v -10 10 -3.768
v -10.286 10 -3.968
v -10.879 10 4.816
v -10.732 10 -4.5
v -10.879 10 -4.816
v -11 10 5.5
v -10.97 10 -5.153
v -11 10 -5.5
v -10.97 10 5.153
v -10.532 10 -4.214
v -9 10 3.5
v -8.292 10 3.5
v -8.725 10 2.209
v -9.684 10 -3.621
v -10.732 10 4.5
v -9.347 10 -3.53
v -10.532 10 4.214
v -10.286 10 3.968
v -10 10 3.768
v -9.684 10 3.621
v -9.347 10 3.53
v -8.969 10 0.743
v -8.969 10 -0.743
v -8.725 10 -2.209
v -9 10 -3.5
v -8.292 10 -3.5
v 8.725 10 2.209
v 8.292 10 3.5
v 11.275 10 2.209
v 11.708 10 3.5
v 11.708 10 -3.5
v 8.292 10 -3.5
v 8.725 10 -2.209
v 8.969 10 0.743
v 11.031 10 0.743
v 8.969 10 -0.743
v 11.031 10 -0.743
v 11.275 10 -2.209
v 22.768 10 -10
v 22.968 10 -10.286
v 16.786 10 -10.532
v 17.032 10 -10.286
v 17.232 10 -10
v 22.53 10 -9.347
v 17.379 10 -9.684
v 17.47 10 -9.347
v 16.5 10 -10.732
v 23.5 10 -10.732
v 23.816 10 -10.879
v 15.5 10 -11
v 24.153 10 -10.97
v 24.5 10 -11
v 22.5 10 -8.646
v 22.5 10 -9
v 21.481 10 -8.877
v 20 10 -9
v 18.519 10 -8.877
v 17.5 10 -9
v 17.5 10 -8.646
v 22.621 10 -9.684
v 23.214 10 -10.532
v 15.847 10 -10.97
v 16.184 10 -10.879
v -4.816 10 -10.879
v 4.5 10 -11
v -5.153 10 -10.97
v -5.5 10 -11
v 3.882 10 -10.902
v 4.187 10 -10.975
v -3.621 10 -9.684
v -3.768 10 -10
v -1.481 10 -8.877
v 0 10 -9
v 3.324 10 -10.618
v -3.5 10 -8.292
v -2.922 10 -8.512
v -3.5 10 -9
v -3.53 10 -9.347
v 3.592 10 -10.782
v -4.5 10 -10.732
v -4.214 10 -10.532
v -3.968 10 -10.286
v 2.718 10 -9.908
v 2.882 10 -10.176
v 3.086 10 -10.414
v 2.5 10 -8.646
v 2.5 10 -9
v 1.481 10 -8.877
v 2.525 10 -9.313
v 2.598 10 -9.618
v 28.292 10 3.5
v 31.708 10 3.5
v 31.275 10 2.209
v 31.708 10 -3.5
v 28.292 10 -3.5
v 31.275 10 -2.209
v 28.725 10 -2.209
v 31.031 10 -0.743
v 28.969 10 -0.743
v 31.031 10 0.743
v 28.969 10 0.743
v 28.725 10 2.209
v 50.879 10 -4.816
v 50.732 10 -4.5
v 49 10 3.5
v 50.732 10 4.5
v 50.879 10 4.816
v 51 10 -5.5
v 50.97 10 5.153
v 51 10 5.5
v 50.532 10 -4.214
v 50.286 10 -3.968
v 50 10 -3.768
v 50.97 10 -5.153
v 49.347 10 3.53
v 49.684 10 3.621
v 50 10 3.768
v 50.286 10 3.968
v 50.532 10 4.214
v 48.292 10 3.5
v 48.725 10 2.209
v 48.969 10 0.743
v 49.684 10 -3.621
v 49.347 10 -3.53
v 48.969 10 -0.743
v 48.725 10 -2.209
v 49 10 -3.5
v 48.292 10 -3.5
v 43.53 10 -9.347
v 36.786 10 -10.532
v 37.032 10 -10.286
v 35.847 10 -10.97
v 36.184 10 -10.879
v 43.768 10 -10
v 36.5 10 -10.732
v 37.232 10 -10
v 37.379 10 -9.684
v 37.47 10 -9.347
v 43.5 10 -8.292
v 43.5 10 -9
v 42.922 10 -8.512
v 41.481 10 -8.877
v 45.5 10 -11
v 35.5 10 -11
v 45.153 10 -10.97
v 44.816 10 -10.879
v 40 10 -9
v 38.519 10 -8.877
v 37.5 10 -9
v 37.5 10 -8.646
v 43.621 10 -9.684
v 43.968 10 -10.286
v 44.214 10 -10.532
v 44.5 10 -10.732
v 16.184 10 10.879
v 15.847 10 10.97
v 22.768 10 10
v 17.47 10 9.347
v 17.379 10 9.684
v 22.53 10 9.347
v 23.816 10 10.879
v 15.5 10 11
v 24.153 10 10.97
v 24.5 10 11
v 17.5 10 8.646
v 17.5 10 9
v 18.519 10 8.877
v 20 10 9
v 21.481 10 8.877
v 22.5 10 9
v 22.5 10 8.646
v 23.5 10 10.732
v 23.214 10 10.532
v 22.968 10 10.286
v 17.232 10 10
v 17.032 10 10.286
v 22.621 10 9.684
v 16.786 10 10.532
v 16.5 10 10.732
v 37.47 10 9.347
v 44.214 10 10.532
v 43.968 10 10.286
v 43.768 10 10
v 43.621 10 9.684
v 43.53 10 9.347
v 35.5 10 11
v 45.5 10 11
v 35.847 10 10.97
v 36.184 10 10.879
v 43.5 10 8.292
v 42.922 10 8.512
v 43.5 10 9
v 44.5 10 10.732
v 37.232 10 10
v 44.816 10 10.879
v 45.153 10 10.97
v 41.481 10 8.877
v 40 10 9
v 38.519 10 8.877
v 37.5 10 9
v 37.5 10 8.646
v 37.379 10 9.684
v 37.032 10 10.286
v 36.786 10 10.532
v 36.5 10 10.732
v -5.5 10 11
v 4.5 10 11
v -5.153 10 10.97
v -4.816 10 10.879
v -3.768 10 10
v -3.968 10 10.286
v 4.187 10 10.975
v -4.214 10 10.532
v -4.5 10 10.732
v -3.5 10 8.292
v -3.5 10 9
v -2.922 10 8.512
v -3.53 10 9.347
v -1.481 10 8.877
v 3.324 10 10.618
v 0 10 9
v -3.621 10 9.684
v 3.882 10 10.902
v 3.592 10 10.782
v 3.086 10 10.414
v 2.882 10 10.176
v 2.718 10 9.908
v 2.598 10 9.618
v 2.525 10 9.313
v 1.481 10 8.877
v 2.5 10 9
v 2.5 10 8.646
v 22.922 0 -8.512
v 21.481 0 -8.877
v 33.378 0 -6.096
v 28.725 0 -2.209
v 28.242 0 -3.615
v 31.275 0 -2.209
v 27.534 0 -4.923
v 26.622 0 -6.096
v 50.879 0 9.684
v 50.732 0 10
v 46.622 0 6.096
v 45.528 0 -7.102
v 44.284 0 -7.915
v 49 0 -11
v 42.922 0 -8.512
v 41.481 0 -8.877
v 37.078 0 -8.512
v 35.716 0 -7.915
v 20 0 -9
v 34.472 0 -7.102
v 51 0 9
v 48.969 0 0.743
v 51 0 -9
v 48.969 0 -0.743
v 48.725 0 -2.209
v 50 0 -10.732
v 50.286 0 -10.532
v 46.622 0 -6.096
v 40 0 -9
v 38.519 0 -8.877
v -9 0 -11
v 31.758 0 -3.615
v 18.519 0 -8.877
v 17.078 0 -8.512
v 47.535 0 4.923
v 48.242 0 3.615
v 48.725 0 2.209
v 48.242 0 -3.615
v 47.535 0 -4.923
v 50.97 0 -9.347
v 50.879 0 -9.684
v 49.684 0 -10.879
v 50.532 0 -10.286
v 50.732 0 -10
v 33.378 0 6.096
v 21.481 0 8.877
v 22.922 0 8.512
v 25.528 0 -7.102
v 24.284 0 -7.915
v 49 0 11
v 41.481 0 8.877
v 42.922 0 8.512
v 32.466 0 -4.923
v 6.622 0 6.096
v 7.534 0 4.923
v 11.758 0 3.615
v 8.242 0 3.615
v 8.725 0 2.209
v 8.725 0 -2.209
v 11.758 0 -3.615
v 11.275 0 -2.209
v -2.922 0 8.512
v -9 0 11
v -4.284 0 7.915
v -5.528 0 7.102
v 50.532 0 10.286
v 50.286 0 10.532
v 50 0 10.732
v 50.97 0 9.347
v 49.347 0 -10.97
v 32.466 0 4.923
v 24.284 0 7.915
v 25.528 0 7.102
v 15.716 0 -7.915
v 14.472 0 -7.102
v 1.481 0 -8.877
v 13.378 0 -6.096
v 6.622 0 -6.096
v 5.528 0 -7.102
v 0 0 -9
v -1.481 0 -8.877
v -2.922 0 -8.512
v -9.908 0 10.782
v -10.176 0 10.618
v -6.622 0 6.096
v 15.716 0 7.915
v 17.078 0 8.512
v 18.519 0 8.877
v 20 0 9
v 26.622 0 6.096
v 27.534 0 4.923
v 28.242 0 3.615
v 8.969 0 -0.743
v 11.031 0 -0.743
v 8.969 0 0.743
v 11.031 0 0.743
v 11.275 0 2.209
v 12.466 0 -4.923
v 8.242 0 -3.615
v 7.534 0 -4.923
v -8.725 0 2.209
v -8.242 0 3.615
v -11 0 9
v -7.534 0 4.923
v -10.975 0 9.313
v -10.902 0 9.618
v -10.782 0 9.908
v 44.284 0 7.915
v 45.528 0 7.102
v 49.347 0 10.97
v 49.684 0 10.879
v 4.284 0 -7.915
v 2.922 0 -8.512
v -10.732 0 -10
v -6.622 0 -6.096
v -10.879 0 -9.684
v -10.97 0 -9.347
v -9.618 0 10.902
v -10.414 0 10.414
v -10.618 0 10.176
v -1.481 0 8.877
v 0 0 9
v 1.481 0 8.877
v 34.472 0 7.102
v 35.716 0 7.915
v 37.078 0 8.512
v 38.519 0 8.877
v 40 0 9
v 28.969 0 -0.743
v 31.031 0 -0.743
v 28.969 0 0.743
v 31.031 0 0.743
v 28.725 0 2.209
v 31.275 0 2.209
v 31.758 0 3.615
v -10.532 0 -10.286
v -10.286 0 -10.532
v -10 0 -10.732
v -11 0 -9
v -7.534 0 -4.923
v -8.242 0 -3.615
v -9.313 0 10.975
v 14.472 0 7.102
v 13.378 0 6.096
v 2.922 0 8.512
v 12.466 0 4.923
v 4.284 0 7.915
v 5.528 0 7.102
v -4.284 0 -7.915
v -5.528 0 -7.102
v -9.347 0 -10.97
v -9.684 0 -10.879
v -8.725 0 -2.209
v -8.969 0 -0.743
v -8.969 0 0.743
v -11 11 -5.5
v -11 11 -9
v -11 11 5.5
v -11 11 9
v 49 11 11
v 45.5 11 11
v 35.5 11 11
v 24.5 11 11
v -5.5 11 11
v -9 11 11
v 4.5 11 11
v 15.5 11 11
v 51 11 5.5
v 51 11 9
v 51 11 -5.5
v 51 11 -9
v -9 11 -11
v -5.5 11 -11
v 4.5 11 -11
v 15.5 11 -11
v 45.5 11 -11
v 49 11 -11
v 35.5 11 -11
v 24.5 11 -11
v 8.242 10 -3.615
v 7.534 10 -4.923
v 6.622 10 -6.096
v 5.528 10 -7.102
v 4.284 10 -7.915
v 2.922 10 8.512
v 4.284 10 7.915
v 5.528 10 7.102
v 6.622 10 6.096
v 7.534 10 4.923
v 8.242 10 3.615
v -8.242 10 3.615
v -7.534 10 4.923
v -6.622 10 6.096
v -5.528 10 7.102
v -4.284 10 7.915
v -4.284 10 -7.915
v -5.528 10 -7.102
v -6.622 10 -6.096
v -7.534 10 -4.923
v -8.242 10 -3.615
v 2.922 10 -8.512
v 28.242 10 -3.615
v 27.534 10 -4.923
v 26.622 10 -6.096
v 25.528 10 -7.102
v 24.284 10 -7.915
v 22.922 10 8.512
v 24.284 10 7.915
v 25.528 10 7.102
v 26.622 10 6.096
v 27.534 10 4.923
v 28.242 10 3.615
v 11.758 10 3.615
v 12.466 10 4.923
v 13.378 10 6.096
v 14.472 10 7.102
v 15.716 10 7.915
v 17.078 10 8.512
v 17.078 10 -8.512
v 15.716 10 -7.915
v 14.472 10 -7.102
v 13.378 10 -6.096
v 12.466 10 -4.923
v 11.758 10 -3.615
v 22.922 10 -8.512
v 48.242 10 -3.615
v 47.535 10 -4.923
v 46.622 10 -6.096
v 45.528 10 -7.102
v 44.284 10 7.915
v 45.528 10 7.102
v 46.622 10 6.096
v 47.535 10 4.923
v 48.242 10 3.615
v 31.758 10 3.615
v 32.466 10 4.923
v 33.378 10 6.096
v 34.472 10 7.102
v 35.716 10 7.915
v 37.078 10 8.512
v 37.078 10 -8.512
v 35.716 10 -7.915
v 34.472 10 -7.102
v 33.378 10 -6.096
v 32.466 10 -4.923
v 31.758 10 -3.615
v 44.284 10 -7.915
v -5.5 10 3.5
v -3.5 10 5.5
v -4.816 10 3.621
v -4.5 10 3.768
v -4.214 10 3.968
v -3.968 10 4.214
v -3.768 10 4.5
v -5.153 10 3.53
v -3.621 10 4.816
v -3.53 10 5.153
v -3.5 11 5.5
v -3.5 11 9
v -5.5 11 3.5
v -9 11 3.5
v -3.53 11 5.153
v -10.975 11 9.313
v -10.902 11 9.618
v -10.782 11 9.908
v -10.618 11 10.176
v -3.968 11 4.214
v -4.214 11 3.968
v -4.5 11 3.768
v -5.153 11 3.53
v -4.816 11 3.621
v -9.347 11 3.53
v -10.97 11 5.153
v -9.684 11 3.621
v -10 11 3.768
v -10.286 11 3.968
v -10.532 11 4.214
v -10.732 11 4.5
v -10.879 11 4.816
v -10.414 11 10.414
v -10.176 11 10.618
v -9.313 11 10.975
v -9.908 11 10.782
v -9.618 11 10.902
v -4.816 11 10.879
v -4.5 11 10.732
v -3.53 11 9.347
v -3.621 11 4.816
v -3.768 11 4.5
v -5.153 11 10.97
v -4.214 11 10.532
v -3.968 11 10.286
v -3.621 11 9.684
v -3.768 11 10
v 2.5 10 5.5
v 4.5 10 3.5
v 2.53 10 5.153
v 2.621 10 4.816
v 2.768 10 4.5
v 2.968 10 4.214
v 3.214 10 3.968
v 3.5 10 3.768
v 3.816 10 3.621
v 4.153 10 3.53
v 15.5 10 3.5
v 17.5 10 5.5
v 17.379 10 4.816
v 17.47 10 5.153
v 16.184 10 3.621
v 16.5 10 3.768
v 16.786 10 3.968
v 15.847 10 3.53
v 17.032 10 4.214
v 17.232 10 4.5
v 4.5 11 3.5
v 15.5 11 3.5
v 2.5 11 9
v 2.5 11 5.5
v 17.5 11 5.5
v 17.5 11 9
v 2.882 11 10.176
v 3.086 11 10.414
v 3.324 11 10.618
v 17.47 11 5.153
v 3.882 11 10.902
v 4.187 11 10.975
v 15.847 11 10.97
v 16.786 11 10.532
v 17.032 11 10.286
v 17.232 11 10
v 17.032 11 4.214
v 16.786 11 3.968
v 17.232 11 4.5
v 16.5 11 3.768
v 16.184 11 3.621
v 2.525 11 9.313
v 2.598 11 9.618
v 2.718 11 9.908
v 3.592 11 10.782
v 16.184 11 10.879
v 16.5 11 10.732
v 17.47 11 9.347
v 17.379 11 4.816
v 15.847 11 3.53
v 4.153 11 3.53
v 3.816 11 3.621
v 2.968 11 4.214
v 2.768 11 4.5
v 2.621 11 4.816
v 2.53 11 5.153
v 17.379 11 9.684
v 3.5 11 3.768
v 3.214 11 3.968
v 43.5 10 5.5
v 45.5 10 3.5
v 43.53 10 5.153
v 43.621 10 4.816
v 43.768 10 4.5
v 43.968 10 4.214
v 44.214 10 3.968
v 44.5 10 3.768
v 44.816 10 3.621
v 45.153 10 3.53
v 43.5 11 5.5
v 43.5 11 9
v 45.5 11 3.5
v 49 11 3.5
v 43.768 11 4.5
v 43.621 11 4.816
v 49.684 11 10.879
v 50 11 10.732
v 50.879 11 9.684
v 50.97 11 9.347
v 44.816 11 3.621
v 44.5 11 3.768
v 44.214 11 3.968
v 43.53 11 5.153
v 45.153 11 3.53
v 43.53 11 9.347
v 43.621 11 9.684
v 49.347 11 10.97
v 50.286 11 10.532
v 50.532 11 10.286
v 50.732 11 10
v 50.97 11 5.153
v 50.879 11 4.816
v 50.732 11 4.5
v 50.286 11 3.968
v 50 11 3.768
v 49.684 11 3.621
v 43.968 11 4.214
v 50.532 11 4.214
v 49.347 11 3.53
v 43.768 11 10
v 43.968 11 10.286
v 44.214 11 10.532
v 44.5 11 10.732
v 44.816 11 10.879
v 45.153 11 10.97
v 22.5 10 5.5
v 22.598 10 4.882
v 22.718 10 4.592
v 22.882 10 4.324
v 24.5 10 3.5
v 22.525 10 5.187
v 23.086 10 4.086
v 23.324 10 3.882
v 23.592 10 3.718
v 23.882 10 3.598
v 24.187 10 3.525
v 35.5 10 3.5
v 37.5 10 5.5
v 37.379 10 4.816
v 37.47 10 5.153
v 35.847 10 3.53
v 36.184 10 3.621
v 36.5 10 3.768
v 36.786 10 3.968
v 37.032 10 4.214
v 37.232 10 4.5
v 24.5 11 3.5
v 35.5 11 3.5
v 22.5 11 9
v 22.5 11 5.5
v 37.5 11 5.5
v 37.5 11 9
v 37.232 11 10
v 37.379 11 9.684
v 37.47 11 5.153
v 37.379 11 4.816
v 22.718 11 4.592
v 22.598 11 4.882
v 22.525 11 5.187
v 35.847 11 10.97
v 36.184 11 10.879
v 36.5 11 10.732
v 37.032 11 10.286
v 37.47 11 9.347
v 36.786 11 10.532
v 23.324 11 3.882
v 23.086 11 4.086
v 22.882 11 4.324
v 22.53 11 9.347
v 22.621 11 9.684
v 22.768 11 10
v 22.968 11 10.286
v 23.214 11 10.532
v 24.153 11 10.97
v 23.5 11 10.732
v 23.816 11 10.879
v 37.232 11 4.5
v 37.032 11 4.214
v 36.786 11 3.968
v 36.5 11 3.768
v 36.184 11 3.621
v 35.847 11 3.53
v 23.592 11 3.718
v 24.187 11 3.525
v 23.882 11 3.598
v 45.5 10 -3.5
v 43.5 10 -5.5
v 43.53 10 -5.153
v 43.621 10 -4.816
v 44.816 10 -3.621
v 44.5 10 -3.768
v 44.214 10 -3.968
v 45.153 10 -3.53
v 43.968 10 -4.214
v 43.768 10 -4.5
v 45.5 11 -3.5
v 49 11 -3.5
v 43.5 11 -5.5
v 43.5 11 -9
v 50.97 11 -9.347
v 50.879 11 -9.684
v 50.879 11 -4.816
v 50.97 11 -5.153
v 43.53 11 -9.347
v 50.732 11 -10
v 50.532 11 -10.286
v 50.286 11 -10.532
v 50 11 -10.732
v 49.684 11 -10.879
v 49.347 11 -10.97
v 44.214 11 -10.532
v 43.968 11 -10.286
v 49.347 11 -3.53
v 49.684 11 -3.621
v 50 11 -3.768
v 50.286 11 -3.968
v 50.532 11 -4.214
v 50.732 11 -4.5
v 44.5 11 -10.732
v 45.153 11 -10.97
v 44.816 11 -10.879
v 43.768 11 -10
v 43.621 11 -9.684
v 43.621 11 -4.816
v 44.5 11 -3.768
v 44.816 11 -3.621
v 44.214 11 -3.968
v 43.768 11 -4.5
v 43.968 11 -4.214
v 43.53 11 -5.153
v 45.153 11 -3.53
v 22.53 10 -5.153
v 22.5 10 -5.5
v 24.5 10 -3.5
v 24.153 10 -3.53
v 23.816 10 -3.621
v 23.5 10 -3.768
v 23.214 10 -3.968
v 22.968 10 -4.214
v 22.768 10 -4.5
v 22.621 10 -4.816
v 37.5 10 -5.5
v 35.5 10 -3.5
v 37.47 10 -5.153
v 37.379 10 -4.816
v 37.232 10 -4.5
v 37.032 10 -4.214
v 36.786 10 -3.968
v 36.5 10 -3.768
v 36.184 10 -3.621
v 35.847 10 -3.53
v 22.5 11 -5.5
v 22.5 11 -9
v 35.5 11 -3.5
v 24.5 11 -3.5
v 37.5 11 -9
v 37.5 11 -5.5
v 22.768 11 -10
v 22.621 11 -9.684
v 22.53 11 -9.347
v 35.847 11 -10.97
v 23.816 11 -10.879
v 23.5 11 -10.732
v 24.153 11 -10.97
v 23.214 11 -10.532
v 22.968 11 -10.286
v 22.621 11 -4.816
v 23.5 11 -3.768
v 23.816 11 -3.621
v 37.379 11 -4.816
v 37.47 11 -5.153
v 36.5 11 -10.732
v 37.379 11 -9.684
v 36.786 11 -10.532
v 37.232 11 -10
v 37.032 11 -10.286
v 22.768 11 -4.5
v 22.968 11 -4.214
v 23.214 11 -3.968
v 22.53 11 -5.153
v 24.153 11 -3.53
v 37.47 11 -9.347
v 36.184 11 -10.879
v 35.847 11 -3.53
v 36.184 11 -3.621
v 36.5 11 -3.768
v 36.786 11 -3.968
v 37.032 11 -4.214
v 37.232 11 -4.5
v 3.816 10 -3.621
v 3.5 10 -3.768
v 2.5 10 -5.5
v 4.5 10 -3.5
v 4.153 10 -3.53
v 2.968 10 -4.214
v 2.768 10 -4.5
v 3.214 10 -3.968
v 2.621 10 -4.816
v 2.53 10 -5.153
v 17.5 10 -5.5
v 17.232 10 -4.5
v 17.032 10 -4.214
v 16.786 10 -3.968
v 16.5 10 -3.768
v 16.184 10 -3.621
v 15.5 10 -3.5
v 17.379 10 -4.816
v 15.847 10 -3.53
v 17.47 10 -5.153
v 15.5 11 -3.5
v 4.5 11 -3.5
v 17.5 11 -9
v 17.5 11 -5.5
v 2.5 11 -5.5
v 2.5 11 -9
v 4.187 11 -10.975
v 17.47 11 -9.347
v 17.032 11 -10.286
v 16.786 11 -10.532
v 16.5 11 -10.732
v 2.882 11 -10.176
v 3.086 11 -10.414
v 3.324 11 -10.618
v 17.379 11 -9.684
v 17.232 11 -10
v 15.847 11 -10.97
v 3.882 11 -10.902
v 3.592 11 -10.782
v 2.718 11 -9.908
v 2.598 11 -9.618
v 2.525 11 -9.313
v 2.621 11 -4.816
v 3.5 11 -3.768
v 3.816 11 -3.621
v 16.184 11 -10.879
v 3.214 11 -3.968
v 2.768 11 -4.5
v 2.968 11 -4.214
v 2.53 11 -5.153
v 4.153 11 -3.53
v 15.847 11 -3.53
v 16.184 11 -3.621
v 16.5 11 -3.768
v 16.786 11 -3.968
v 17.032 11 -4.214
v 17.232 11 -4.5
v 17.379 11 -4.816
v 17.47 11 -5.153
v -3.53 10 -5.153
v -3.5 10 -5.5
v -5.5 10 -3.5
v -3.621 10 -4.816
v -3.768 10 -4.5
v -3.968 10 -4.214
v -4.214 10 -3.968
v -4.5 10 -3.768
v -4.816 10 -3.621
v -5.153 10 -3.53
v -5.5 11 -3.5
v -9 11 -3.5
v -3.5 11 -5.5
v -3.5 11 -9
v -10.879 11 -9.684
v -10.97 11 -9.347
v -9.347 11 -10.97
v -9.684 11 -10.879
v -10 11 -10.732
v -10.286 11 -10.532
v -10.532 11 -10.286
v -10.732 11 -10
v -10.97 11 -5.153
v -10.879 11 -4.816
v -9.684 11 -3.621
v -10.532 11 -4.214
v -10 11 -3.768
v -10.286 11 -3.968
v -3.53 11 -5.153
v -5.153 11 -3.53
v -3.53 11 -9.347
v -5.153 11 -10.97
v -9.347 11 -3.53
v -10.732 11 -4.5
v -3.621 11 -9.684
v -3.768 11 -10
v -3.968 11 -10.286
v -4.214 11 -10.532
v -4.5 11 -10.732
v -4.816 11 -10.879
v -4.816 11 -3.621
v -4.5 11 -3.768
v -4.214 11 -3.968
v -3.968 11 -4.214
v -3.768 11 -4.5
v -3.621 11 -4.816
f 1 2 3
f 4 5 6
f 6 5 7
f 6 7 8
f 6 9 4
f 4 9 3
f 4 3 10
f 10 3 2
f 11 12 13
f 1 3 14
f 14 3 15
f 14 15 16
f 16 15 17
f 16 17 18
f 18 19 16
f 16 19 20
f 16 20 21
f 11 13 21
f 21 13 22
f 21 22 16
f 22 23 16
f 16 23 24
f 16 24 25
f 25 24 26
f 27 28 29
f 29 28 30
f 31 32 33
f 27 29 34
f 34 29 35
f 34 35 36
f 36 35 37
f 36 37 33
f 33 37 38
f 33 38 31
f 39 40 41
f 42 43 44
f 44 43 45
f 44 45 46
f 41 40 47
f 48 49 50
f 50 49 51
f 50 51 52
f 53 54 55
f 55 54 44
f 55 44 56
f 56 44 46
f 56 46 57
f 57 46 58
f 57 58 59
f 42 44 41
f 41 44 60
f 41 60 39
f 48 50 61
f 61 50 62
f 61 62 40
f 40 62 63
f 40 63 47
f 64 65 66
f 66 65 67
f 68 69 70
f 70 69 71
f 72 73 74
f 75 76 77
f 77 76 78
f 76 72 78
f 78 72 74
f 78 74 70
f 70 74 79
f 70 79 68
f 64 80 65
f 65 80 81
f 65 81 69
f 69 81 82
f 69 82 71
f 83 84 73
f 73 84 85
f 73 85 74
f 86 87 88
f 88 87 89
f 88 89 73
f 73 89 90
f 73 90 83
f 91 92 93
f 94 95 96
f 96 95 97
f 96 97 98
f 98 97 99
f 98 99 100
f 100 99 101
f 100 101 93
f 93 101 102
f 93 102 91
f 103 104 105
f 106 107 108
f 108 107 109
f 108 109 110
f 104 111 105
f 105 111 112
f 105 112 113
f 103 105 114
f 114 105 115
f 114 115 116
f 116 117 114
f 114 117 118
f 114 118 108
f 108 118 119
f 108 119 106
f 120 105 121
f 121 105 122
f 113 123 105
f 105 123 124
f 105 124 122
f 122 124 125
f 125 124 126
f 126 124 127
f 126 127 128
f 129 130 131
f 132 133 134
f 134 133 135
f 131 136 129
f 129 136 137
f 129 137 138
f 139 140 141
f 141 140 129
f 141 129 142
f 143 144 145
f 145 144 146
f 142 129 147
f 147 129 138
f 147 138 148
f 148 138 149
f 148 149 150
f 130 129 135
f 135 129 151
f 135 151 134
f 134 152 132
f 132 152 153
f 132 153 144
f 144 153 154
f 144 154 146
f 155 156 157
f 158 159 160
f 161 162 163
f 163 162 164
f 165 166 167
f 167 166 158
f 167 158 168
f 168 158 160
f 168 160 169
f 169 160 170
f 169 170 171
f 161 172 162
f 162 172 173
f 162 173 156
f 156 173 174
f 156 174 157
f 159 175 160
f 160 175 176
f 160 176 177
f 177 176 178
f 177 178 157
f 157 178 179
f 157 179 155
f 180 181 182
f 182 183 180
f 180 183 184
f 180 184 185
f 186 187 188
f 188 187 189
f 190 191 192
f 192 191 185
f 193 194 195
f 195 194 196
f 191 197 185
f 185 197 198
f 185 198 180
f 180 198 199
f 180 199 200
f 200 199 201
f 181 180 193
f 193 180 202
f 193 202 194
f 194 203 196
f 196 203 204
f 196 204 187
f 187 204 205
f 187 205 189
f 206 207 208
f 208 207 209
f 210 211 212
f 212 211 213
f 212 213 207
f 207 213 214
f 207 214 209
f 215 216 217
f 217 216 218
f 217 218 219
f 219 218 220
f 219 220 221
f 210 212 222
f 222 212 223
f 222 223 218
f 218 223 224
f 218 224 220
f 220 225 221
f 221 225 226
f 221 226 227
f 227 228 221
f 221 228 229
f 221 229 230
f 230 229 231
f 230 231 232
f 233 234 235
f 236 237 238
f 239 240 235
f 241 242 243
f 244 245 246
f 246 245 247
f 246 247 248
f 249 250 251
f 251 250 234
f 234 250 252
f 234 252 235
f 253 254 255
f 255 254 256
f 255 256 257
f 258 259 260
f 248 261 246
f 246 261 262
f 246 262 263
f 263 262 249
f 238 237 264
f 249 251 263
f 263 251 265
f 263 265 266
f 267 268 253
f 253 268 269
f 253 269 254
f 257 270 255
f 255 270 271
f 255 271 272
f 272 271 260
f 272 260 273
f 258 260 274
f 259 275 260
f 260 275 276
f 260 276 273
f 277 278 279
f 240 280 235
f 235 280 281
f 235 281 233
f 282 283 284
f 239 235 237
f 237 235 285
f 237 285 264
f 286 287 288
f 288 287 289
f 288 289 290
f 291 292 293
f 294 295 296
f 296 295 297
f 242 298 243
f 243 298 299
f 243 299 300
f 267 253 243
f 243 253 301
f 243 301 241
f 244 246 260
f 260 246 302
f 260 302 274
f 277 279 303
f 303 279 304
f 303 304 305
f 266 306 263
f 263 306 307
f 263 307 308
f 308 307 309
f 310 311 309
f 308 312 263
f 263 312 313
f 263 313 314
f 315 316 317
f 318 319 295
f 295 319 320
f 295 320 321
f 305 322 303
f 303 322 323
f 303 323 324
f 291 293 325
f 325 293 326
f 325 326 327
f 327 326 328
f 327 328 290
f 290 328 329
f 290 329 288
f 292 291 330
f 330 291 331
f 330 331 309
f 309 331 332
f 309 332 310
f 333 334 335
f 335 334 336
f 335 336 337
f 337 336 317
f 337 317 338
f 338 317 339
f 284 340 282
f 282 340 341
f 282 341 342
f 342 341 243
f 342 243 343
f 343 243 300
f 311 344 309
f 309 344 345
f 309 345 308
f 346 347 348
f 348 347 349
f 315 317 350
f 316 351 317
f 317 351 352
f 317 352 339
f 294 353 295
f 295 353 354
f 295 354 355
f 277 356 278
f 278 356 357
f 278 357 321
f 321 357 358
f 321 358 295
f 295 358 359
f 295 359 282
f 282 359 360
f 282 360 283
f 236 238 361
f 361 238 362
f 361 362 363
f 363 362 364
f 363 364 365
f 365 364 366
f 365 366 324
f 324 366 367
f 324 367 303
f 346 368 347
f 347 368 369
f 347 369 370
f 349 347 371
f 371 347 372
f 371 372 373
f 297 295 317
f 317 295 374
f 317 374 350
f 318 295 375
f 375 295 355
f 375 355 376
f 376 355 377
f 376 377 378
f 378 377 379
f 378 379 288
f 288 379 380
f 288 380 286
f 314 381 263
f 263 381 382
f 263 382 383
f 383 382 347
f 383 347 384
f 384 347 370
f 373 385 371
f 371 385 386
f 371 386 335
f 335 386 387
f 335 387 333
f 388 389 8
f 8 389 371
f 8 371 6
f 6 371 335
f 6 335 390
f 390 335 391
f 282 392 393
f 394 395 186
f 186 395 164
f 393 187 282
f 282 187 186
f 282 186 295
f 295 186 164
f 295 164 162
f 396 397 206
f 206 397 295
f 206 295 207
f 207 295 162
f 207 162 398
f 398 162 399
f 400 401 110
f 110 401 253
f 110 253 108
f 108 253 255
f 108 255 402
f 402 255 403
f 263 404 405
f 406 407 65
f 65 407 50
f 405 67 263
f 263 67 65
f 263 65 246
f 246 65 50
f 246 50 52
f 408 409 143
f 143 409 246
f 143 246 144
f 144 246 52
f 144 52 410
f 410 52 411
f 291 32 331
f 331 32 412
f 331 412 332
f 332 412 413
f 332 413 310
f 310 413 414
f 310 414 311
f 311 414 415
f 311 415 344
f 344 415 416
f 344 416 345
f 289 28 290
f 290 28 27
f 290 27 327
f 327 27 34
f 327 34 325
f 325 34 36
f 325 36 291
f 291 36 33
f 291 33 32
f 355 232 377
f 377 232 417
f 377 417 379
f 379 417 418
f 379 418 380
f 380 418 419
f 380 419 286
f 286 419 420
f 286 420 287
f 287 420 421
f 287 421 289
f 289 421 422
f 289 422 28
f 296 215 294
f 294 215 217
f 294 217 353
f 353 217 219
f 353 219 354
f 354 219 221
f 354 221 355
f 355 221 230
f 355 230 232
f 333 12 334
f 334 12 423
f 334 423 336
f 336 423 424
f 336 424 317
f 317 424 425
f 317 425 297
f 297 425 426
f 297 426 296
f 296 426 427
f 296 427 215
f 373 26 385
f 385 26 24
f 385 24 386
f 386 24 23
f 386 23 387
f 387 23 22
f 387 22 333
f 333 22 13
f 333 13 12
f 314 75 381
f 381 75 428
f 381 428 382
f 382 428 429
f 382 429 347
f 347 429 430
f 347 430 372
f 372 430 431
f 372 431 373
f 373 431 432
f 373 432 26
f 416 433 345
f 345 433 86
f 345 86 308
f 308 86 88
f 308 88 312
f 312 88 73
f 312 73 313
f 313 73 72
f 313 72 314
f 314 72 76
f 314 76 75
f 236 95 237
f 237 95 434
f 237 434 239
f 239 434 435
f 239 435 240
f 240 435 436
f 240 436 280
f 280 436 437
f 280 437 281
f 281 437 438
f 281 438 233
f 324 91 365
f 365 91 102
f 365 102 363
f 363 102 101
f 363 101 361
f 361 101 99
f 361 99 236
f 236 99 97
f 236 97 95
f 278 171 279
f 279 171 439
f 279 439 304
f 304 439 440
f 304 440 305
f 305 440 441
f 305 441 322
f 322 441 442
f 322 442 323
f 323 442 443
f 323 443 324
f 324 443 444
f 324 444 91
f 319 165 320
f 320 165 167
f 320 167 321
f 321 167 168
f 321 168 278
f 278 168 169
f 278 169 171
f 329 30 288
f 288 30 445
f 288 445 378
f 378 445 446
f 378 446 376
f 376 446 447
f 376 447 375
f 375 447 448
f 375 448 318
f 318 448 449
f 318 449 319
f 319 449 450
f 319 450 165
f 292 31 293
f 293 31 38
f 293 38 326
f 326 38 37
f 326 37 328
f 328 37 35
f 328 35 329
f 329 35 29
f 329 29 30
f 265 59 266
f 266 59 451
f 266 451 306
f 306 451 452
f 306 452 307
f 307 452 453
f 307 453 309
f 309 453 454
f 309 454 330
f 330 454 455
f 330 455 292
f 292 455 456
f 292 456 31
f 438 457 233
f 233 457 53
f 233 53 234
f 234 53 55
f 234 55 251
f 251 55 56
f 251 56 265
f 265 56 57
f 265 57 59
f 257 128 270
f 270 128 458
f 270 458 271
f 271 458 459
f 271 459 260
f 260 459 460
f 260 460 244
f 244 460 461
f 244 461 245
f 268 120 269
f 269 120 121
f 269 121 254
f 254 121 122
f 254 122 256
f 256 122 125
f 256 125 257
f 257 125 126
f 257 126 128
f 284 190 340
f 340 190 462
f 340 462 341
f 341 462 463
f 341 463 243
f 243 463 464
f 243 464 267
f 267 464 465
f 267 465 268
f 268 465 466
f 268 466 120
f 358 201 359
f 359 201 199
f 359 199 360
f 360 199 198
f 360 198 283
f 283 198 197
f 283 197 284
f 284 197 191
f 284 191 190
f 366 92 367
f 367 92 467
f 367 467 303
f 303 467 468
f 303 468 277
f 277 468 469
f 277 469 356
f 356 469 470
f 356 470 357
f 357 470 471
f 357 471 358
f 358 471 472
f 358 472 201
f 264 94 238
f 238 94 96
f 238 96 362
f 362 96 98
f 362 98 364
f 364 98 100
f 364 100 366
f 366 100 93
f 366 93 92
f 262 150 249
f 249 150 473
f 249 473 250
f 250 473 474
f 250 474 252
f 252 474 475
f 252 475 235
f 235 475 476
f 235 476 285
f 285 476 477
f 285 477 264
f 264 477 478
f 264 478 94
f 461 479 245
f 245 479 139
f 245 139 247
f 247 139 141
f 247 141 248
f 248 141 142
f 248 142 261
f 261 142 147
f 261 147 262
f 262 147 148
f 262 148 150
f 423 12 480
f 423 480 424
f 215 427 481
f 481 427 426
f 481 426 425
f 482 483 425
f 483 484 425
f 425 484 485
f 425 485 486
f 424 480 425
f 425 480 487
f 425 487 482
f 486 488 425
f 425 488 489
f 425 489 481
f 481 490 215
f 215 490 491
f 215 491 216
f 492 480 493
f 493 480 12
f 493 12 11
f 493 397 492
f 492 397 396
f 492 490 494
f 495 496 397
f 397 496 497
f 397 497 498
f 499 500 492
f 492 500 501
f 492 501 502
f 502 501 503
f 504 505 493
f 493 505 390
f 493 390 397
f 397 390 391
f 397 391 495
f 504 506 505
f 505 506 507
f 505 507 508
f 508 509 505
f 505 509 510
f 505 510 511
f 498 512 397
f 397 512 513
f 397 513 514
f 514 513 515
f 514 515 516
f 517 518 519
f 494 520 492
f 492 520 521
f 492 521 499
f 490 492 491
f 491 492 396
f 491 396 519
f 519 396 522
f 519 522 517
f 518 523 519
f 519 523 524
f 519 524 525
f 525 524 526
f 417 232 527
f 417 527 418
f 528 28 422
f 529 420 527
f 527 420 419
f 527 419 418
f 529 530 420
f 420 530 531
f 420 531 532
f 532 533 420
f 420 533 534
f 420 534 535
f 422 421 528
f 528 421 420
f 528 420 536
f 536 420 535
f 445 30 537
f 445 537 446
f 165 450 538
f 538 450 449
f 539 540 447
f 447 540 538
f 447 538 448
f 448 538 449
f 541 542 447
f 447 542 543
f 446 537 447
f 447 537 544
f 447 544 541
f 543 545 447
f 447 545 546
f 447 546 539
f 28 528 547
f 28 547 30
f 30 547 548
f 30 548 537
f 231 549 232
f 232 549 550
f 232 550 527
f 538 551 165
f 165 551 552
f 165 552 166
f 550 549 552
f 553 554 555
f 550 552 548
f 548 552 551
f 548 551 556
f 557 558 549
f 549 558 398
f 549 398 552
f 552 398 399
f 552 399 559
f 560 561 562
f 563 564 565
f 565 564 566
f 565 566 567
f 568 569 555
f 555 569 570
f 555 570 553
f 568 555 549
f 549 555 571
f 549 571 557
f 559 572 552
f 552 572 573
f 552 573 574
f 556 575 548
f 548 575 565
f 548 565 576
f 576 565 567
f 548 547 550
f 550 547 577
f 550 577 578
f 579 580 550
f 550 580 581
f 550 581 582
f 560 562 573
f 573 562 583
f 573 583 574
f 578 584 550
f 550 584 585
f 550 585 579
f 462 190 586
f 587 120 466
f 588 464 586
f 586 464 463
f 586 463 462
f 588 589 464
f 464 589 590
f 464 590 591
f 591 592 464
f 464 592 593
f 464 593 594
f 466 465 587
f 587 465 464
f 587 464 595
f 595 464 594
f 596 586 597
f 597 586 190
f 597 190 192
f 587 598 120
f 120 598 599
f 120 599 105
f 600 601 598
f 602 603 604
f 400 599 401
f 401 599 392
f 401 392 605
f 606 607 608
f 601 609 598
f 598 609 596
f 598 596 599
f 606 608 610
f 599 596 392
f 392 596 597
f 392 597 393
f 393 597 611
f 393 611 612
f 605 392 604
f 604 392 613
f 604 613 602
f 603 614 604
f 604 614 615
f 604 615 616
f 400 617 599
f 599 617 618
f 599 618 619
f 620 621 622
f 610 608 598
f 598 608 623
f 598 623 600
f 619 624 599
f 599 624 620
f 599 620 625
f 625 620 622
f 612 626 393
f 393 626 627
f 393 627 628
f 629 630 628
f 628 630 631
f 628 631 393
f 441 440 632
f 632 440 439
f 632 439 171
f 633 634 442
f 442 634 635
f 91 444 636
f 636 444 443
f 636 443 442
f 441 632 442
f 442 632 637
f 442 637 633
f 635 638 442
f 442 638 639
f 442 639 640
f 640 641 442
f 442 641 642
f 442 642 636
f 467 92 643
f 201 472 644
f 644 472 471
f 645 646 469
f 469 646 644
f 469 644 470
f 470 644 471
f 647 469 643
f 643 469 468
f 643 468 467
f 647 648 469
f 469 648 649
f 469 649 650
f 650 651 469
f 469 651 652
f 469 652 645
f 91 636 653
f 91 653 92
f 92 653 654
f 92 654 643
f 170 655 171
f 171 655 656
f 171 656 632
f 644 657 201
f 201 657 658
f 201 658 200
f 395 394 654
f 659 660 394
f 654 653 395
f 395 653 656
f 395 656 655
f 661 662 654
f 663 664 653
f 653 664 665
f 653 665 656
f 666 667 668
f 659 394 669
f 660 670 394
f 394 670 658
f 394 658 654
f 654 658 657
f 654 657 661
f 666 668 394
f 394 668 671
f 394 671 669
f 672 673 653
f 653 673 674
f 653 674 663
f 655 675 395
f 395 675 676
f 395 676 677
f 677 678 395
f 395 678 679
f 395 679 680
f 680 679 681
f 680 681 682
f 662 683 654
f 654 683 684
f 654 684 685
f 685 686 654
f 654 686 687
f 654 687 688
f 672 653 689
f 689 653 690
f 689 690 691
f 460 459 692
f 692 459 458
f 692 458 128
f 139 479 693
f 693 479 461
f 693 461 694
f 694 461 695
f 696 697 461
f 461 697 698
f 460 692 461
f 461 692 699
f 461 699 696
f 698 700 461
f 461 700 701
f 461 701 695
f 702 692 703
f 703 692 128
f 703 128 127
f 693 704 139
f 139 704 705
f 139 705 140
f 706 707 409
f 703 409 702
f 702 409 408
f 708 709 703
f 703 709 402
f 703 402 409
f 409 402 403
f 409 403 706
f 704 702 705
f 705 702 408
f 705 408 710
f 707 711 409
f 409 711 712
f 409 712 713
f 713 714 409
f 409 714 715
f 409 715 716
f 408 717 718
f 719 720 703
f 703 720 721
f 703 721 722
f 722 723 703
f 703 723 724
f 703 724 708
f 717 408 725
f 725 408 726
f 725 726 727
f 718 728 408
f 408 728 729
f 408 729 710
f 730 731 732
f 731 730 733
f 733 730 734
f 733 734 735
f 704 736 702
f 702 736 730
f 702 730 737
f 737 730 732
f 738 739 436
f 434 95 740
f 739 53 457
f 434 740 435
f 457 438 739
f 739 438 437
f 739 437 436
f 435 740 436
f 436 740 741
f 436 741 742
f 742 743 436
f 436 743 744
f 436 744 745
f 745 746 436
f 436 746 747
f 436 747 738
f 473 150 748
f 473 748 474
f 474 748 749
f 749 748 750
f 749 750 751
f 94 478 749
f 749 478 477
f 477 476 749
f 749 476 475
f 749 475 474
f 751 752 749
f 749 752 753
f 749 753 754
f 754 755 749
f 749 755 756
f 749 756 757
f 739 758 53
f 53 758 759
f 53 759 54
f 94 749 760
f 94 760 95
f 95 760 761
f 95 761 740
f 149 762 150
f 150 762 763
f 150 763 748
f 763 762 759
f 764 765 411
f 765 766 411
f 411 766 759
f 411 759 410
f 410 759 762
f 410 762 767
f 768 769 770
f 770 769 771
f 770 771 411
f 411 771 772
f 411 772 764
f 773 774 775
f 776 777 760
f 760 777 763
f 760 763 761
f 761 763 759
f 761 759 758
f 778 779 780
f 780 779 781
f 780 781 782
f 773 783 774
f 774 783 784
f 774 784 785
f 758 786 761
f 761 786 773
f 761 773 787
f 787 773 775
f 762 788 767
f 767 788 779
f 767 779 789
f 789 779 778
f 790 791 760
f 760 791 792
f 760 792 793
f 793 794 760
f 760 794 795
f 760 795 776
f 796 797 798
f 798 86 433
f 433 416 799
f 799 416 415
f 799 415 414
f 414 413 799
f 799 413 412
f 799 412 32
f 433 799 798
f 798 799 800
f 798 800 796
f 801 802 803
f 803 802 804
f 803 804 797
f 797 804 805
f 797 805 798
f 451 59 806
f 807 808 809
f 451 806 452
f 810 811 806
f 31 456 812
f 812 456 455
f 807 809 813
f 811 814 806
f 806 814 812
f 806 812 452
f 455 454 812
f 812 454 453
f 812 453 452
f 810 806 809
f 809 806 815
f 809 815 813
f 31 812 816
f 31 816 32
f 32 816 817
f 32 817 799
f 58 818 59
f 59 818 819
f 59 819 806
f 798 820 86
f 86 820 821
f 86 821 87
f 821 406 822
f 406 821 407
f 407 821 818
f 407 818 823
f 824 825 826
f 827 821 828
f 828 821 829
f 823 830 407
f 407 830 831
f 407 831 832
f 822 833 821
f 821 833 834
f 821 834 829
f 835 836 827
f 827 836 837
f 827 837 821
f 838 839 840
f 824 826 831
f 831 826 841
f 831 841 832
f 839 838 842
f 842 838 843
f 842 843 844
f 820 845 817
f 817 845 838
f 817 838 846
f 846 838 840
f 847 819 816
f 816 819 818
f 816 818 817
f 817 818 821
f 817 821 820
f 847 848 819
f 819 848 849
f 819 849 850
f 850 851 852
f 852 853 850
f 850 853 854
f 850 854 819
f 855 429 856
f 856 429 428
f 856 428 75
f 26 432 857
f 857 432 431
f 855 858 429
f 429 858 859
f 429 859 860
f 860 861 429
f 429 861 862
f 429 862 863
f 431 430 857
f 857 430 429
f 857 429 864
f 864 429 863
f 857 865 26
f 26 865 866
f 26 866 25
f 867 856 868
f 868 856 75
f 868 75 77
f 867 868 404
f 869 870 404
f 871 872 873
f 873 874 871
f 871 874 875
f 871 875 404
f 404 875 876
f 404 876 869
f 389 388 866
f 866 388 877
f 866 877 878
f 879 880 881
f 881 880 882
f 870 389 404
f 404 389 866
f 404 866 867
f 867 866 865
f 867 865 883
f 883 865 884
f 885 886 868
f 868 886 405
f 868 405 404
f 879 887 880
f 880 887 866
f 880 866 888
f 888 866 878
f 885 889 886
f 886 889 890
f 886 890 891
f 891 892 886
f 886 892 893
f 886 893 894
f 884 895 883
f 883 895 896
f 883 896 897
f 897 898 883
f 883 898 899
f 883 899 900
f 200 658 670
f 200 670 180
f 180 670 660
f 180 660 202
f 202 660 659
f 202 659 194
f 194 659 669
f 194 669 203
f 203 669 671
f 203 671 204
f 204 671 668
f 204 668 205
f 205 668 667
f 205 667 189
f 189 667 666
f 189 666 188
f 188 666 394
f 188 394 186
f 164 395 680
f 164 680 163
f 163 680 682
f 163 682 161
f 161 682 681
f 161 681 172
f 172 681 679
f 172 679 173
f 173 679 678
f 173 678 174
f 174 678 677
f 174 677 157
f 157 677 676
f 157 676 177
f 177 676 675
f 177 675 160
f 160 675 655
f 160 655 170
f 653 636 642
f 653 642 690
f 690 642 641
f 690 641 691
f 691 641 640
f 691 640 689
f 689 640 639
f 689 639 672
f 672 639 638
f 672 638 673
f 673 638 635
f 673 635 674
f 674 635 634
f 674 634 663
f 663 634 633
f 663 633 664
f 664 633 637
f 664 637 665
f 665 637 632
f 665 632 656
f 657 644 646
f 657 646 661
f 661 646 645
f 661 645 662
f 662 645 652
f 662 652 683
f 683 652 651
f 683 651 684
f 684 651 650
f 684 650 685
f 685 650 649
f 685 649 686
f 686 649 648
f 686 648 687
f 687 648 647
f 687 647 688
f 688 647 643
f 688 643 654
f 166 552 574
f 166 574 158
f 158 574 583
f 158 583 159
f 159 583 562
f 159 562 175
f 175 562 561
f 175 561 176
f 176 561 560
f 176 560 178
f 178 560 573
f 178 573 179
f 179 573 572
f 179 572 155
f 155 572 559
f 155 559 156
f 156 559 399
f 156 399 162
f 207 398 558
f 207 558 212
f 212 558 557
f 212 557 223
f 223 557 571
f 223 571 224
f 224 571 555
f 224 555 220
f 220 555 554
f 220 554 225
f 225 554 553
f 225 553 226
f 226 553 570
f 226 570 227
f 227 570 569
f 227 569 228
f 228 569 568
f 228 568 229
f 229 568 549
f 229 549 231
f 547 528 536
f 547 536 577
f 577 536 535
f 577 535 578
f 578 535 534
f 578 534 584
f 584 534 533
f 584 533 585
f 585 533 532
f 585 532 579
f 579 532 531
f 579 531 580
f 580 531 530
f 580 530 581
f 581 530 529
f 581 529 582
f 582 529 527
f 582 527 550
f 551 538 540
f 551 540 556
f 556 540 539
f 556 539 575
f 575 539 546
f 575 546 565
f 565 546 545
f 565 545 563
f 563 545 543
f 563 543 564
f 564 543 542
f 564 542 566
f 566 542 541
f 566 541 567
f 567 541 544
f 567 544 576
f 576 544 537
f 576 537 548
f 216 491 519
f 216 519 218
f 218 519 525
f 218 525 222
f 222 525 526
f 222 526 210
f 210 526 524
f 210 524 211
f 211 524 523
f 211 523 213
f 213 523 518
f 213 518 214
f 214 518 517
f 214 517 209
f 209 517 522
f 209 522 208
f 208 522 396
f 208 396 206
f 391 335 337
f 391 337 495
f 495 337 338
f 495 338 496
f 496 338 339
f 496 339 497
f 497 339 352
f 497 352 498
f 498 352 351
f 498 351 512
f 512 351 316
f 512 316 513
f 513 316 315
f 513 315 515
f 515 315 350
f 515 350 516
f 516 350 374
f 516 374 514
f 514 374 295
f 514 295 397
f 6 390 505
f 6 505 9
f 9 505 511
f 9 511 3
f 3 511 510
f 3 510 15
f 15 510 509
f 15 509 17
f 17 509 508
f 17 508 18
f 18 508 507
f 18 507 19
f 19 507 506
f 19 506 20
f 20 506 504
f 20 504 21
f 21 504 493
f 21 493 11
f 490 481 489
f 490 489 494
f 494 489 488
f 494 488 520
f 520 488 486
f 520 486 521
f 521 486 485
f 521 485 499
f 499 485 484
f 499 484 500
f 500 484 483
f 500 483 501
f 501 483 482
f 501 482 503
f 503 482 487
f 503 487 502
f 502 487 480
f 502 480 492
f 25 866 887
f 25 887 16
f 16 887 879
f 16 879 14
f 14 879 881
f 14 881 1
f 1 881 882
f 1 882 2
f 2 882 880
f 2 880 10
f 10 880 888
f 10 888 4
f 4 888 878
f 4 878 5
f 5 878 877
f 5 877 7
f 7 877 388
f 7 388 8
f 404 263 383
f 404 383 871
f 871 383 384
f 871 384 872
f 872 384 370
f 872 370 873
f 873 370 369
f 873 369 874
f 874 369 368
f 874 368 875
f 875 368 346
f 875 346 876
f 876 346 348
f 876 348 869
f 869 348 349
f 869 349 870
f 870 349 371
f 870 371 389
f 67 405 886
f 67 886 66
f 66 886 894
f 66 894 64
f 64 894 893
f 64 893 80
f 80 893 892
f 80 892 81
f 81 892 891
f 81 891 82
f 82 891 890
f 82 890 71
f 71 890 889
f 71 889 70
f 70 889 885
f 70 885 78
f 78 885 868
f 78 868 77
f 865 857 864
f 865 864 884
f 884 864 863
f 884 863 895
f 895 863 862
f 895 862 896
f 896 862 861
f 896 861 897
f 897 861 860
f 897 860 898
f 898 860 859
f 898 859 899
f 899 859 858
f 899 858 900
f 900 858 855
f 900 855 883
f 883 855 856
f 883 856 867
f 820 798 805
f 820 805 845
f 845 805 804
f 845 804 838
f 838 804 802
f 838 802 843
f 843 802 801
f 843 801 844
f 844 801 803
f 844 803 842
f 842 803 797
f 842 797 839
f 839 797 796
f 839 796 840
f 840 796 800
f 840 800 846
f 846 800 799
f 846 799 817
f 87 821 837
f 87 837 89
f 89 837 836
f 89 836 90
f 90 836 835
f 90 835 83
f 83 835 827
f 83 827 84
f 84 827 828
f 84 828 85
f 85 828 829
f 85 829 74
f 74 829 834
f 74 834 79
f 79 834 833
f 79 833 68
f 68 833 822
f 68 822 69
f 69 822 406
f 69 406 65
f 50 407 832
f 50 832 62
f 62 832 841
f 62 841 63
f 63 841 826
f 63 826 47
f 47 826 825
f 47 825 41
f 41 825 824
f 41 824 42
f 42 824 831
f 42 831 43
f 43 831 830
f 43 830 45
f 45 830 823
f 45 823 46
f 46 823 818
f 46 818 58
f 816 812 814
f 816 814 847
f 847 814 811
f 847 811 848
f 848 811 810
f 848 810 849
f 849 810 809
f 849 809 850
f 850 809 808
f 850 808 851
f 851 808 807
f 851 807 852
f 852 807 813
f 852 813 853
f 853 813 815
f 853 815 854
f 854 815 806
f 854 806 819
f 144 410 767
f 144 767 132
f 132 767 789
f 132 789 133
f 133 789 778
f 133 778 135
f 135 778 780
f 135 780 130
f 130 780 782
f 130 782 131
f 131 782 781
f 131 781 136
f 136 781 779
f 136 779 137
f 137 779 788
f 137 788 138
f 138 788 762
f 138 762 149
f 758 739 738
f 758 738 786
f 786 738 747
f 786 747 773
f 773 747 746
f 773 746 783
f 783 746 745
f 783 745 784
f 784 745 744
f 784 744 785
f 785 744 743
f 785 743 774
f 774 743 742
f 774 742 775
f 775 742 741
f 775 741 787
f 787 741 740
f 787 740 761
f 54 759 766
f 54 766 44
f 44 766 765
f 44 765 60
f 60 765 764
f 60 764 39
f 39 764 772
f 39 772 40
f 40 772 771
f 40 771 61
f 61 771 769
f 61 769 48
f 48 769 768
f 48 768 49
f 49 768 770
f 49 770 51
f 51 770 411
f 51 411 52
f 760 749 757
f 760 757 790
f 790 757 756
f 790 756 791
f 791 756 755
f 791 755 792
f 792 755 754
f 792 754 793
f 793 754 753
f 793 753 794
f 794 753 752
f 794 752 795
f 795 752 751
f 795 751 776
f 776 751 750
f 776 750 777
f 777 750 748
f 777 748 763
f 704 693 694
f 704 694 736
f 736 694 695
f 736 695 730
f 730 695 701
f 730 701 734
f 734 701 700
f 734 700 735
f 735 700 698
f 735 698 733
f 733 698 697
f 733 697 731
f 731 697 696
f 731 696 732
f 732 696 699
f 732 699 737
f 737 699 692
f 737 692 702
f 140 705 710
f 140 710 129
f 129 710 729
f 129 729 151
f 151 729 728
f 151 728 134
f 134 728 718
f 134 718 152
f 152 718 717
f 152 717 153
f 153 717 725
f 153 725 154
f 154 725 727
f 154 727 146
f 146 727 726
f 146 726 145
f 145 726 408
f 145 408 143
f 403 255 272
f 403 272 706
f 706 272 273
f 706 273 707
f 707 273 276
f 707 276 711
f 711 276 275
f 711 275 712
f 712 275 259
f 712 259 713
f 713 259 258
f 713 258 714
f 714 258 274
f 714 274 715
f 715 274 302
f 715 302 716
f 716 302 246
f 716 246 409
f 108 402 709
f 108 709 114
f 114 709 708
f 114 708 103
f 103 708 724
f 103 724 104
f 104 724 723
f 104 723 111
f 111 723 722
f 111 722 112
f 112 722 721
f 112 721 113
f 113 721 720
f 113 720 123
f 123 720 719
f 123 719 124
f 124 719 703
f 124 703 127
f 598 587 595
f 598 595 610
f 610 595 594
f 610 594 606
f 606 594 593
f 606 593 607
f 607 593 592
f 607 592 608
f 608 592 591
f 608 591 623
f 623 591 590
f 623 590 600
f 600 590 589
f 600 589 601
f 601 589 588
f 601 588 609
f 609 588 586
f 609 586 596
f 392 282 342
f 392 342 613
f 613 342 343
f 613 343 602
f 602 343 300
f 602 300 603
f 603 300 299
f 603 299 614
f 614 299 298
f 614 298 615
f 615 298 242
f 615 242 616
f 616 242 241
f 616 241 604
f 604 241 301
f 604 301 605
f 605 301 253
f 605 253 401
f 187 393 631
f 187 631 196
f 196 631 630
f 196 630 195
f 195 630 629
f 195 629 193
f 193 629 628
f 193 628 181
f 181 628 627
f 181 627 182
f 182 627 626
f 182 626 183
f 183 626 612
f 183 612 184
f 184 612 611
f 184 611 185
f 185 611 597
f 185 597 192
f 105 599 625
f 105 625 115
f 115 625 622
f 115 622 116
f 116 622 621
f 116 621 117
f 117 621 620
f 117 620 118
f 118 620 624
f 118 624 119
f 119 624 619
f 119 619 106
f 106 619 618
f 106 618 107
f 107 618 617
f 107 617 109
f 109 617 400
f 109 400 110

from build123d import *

# Parameters (mm, degrees)
SKETCH1_W           = 62
SKETCH1_H           = 22
SKETCH1_R           = 9
BOSS_EXTRUDE3_DEPTH = 10
BOSS_EXTRUDE4_START = 10
SKETCH3_W           = 7.5
SKETCH3_H           = 7.5
SKETCH3_W_2         = 15
BOSS_EXTRUDE4_DEPTH = 1
FILLET3_R           = 2


with BuildPart() as part:
    # Sketch1 → Boss-Extrude3 (new body)
    with BuildSketch(Plane(origin=(0, 0, 0), x_dir=(1, 0, 0), z_dir=(0, 1, 0))):
        with Locations((20, 0)):
            Rectangle(SKETCH1_W, SKETCH1_H)
        with Locations(Location((0, 0, 0), (0, 0, 270))):
            Circle(SKETCH1_R, mode=Mode.SUBTRACT)
        with Locations(Location((20, 0, 0), (0, 0, 270))):
            Circle(SKETCH1_R, mode=Mode.SUBTRACT)
        with Locations(Location((40, 0, 0), (0, 0, 270))):
            Circle(SKETCH1_R, mode=Mode.SUBTRACT)
    extrude(amount=BOSS_EXTRUDE3_DEPTH)

    # Sketch3 → Boss-Extrude4 (add)
    with BuildSketch(Plane(origin=(0, 0, 0), x_dir=(-1, 0, 0), z_dir=(0, 1, 0)).offset(BOSS_EXTRUDE4_START)):
        with Locations((7.25, 7.25)):
            Rectangle(SKETCH3_W, SKETCH3_H)
        with Locations((-10, 7.25)):
            Rectangle(SKETCH3_W_2, SKETCH3_H)
        with Locations((-30, 7.25)):
            Rectangle(SKETCH3_W_2, SKETCH3_H)
        with Locations((-47.25, -7.25)):
            Rectangle(SKETCH3_W, SKETCH3_H)
        with Locations((-47.25, 7.25)):
            Rectangle(SKETCH3_W, SKETCH3_H)
        with Locations((-30, -7.25)):
            Rectangle(SKETCH3_W_2, SKETCH3_H)
        with Locations((-10, -7.25)):
            Rectangle(SKETCH3_W_2, SKETCH3_H)
        with Locations((7.25, -7.25)):
            Rectangle(SKETCH3_W, SKETCH3_H)
    extrude(amount=BOSS_EXTRUDE4_DEPTH)

    # Fillet3
    fillet3_edges = [part.edges().sort_by_distance(p)[0] for p in [
        (37.5, 10.5, -11),
        (22.5, 10.5, -11),
        (22.5, 10.5, -3.5),
        (37.5, 10.5, -3.5),
        (2.5, 10.5, -3.5),
        (17.5, 10.5, -3.5),
        (17.5, 10.5, -11),
        (2.5, 10.5, -11),
        (-11, 10.5, -3.5),
        (-3.5, 10.5, -3.5),
        (-3.5, 10.5, -11),
        (-3.5, 10.5, 11),
        (-3.5, 10.5, 3.5),
        (-11, 10.5, 3.5),
        (17.5, 10.5, 3.5),
        (2.5, 10.5, 3.5),
        (2.5, 10.5, 11),
        (17.5, 10.5, 11),
        (43.5, 10.5, 3.5),
        (43.5, 10.5, 11),
        (51, 10.5, 3.5),
        (37.5, 10.5, 3.5),
        (22.5, 10.5, 3.5),
        (22.5, 10.5, 11),
        (37.5, 10.5, 11),
        (-11, 5.5, -11),
        (51, 5.5, -11),
        (51, 5.5, 11),
        (-11, 5.5, 11),
        (43.5, 10.5, -3.5),
        (51, 10.5, -3.5),
        (43.5, 10.5, -11),
    ]]
    fillet(fillet3_edges, radius=FILLET3_R)


solid = part.part
